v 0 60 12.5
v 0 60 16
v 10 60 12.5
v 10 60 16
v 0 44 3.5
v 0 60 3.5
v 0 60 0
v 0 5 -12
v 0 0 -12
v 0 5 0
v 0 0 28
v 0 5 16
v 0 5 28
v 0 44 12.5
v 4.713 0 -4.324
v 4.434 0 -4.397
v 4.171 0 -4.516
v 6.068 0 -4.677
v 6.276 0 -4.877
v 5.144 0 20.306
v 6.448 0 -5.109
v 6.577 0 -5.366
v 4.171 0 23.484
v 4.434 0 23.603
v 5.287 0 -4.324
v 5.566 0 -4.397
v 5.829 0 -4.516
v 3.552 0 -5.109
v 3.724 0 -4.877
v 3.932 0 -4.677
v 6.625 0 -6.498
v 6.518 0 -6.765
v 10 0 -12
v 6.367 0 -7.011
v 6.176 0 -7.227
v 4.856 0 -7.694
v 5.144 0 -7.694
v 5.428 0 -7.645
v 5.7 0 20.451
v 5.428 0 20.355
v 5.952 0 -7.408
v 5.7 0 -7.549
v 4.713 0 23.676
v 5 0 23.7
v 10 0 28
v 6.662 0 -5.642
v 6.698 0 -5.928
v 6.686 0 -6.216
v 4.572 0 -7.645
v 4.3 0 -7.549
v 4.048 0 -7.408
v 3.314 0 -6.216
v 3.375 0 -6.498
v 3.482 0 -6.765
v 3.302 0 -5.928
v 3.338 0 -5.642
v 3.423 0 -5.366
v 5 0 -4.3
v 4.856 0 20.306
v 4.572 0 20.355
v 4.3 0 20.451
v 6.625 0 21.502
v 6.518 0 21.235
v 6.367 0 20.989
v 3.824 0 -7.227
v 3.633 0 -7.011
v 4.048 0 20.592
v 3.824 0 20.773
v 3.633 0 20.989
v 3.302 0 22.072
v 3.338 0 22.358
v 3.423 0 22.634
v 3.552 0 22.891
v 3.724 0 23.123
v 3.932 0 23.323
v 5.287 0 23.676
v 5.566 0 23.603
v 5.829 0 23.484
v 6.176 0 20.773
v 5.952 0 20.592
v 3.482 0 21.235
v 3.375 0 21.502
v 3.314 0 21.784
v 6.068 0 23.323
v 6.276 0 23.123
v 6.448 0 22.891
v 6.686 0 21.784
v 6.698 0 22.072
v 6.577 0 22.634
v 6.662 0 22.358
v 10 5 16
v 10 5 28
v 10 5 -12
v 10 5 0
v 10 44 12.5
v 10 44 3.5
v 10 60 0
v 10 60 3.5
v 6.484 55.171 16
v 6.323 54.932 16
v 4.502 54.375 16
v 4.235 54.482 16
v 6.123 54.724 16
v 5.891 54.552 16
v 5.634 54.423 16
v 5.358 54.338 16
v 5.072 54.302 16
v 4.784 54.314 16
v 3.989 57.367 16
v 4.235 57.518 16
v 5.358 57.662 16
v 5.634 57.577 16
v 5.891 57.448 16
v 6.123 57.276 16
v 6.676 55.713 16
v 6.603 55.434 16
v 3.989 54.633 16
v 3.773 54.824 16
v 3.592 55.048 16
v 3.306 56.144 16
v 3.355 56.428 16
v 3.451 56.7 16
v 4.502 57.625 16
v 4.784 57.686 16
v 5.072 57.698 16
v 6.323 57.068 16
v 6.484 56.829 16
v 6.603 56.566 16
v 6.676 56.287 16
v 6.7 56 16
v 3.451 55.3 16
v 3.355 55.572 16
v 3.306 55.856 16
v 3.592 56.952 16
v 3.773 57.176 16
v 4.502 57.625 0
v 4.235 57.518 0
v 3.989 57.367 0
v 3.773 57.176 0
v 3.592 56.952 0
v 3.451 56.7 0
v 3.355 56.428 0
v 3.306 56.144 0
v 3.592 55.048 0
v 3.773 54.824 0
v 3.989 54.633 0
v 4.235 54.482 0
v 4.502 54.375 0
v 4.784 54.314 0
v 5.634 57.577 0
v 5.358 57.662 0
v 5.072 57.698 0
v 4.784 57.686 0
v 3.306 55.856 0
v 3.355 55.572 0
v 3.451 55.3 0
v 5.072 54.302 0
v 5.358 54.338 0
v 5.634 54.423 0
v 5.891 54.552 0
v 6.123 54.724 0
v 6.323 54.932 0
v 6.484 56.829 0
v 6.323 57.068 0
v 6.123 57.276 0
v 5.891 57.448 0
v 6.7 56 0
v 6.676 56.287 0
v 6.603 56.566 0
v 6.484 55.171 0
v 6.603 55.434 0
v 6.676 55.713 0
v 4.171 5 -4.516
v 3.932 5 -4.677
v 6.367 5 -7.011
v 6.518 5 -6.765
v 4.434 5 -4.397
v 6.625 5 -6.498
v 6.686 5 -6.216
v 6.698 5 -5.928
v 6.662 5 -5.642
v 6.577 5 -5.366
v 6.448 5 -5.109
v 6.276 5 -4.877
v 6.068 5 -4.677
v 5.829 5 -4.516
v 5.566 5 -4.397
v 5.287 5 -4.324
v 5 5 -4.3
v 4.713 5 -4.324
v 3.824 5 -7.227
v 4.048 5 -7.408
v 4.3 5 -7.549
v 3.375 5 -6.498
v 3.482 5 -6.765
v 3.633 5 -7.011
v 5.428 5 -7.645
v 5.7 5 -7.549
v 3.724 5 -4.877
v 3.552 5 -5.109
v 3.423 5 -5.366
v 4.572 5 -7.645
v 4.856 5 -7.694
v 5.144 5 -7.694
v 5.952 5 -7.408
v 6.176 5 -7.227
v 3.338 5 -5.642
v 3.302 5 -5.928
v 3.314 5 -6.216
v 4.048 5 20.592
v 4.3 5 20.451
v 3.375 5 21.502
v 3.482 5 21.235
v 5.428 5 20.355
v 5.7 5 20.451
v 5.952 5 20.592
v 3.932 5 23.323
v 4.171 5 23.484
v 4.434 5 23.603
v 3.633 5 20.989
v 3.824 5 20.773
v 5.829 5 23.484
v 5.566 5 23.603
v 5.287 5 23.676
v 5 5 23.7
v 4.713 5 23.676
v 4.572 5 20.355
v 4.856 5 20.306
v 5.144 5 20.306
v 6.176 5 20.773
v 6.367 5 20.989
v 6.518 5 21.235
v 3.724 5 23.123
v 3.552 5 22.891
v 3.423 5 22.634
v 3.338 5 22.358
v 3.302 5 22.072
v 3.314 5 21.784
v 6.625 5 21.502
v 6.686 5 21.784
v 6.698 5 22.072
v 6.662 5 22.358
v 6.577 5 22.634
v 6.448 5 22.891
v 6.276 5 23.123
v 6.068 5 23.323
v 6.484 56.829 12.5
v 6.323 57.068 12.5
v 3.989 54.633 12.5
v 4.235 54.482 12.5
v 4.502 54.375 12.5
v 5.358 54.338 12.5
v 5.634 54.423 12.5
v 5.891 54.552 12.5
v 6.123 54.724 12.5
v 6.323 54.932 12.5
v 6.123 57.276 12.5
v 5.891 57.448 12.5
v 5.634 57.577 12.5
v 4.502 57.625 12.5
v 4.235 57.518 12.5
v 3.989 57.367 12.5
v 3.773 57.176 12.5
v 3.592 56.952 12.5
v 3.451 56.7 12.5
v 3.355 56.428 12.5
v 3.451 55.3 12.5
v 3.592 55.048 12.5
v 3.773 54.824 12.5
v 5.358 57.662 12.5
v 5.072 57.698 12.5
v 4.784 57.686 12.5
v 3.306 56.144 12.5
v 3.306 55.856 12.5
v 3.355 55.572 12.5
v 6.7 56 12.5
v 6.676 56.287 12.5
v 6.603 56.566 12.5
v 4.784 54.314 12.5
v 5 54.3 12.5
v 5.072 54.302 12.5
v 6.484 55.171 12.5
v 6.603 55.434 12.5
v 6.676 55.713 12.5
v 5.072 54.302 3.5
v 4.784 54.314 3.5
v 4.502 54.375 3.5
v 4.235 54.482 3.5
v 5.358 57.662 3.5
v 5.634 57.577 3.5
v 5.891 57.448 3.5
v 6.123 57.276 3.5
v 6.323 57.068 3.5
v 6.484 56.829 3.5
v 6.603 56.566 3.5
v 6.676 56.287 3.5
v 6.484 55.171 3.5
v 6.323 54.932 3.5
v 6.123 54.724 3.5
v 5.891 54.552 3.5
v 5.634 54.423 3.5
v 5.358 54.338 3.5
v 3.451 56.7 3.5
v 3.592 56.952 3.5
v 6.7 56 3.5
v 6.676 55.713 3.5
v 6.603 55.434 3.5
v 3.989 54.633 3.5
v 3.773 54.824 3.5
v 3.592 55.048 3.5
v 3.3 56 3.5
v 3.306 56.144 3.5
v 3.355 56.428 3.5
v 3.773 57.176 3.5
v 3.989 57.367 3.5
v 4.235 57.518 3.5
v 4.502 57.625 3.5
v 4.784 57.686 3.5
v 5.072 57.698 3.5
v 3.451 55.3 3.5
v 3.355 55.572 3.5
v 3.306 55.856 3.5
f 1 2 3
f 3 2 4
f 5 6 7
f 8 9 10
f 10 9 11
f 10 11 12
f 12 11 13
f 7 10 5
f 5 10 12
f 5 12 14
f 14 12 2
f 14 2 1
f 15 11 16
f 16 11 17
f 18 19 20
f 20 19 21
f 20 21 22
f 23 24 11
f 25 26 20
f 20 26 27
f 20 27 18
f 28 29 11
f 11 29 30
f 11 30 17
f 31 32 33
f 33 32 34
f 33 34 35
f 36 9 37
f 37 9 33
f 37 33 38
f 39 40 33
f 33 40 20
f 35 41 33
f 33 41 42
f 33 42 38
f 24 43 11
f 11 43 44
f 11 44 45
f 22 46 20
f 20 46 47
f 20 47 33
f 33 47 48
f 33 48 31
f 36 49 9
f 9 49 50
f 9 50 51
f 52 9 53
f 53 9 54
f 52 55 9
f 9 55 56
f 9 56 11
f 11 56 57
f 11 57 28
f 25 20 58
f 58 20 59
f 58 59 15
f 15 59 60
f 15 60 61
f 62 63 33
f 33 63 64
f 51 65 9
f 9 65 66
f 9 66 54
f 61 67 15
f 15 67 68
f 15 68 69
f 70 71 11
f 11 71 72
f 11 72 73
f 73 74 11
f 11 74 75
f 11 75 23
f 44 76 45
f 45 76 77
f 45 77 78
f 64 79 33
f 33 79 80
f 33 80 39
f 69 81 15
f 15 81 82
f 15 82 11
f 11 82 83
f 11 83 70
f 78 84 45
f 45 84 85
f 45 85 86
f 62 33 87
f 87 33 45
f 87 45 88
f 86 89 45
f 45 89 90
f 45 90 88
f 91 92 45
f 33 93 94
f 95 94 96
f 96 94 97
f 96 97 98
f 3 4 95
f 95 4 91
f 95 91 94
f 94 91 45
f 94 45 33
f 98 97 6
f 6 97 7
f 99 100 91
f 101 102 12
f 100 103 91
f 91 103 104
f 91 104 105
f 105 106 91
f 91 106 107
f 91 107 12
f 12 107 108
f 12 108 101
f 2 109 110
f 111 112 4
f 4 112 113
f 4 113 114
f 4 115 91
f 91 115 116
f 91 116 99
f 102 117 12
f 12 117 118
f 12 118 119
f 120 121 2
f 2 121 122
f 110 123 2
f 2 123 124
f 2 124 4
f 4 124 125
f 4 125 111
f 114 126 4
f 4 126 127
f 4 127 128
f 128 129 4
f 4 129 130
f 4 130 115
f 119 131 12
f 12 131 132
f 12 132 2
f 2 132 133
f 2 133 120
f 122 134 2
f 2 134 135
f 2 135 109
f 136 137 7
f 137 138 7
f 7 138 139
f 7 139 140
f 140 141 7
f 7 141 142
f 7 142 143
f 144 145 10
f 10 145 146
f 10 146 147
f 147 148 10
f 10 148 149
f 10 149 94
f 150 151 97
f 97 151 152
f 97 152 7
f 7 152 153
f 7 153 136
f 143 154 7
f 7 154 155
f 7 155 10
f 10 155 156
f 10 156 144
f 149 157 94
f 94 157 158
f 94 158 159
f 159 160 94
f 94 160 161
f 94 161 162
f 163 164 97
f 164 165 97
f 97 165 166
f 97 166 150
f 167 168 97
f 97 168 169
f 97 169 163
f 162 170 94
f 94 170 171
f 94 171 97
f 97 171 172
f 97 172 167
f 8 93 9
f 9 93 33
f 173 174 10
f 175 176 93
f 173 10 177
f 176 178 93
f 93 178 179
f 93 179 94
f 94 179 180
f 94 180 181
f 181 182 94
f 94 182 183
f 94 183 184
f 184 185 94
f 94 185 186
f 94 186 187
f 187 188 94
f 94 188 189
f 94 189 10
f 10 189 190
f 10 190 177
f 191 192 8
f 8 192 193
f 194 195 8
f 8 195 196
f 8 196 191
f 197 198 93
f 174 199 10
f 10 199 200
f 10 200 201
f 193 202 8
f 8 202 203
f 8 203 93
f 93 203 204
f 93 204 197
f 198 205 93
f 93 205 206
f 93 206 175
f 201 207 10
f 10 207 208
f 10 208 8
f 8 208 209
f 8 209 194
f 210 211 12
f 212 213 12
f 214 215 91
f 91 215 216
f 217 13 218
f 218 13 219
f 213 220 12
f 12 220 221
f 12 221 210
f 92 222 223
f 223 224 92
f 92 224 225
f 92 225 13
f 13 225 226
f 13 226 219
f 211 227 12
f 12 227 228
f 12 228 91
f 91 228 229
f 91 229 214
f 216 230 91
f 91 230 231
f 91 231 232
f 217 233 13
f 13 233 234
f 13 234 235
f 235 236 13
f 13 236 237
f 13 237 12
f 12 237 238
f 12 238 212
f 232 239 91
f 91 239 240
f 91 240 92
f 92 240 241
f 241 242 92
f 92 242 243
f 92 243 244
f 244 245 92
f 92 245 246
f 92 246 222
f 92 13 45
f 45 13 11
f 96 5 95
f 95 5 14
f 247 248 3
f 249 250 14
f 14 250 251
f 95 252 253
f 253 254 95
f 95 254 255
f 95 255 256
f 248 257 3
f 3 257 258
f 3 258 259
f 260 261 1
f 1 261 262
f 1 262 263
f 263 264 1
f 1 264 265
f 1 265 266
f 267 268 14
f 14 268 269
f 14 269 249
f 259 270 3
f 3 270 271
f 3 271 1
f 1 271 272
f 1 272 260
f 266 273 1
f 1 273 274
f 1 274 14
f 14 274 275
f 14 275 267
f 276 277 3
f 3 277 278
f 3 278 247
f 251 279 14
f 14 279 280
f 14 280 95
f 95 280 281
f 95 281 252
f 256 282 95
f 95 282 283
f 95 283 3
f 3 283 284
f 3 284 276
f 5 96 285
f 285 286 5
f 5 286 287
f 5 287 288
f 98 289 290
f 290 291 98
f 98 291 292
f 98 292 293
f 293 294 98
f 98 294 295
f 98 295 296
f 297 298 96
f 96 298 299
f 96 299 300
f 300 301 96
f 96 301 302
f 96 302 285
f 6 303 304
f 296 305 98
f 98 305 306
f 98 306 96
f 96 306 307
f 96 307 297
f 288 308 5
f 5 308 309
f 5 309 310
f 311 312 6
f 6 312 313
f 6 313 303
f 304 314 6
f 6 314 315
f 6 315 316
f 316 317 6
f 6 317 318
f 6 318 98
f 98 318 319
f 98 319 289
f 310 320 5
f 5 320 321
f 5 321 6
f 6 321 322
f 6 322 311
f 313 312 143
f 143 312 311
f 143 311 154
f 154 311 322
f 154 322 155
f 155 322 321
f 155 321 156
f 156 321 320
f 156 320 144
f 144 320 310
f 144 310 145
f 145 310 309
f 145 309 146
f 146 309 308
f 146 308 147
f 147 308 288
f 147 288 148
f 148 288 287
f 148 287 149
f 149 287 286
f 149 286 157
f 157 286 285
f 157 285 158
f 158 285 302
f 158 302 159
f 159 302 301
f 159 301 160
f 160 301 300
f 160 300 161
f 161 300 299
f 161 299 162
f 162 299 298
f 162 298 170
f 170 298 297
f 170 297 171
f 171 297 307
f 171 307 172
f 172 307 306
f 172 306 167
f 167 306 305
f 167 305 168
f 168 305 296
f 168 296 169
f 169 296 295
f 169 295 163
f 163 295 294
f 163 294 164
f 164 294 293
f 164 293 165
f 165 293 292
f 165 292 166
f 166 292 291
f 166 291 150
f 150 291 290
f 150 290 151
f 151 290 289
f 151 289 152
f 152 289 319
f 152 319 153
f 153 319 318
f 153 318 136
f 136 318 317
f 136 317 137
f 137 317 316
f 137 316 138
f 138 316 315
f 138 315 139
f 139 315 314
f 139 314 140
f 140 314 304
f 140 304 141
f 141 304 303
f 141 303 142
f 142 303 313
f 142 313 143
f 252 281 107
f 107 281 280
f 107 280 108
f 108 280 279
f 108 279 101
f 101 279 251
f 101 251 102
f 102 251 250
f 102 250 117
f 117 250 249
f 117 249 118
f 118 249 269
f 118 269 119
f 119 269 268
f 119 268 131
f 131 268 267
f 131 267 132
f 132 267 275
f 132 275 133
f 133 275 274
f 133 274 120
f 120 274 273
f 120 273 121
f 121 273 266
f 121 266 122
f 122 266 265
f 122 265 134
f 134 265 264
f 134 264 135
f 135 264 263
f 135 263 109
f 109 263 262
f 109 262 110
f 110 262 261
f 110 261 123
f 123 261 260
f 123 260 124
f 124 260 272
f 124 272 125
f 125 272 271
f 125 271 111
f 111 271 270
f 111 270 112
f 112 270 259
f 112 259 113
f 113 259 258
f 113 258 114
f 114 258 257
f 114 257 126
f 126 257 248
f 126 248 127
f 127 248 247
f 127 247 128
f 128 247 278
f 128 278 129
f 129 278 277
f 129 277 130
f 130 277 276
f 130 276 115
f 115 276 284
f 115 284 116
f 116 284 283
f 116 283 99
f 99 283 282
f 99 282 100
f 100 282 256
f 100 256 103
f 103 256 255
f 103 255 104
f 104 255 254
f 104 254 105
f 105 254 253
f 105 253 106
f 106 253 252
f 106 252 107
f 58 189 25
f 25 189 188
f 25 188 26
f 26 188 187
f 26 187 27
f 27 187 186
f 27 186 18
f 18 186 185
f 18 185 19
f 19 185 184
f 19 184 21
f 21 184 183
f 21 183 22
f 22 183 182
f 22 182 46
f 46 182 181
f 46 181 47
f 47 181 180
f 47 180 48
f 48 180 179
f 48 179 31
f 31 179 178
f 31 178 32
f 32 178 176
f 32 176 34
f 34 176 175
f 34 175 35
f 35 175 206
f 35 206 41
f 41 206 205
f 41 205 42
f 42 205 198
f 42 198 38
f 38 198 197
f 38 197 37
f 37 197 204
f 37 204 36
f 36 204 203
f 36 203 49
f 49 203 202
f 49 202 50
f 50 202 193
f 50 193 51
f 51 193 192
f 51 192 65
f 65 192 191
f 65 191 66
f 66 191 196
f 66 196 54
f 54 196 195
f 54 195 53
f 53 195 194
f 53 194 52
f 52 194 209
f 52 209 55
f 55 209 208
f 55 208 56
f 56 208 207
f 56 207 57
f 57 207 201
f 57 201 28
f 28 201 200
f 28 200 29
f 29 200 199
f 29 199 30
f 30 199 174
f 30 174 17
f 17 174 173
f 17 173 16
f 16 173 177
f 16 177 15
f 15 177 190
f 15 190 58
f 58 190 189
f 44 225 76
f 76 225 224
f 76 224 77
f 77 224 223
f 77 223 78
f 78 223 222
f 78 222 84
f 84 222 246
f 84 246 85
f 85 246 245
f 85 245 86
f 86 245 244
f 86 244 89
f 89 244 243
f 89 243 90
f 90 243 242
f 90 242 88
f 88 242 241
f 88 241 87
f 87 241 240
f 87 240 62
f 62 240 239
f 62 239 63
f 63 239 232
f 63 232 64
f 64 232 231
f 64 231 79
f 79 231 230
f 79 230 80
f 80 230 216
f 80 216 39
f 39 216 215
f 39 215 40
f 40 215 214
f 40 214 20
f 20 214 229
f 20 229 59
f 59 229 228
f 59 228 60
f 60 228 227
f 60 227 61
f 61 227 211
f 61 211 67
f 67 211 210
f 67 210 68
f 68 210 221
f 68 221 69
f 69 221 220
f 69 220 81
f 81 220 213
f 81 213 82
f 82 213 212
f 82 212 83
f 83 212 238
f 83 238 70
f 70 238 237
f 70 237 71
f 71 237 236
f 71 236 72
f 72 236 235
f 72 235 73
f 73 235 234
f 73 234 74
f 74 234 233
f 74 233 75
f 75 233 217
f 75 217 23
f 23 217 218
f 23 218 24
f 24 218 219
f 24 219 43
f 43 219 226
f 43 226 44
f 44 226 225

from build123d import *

# Parameters (mm, degrees)
IZIM1_W                          = 10
IZIM1_H                          = 60
Y_KSEKLIK_EKSTR_ZYON1_DEPTH      = 16
Y_KSEKLIK_EKSTR_ZYON2_DEPTH      = 12
Y_KSEKLIK_EKSTR_ZYON2_DEPTH_BACK = 28
IZIM2_W                          = 10
IZIM2_H                          = 5
IZIM3_W                          = 9
IZIM3_H                          = 16
KES_EKSTR_ZYON2_DEPTH            = 12
IZIM4_R                          = 1.7
KES_EKSTR_ZYON3_DEPTH            = 25
IZIM5_R                          = 1.7
KES_EKSTR_ZYON4_DEPTH            = 25


with BuildPart() as part:
    # Çizim1 → Yükseklik-Ekstrüzyon1 (new body)
    with BuildSketch(Plane.XY):
        with Locations((5, 30)):
            Rectangle(IZIM1_W, IZIM1_H)
    extrude(amount=Y_KSEKLIK_EKSTR_ZYON1_DEPTH)

    # Çizim2 → Yükseklik-Ekstrüzyon2 (add, two sides: drawn at the far end of the back side and taken through both)
    with BuildSketch(Plane.XY.offset(16).offset(-Y_KSEKLIK_EKSTR_ZYON2_DEPTH_BACK)):
        with Locations((5, 2.5)):
            Rectangle(IZIM2_W, IZIM2_H)
    extrude(amount=Y_KSEKLIK_EKSTR_ZYON2_DEPTH + Y_KSEKLIK_EKSTR_ZYON2_DEPTH_BACK)

    # Çizim3 → Kes-Ekstrüzyon2 (cut)
    with BuildSketch(Plane(origin=(10, 0, 0), x_dir=(0, 0, -1), z_dir=(1, 0, 0))):
        with Locations((-8, 52)):
            Rectangle(IZIM3_W, IZIM3_H)
    extrude(amount=-KES_EKSTR_ZYON2_DEPTH, mode=Mode.SUBTRACT)

    # Çizim4 → Kes-Ekstrüzyon3 (cut)
    with BuildSketch(Plane.XY.offset(16)):
        with Locations((5, 56)):
            Circle(IZIM4_R)
    extrude(amount=-KES_EKSTR_ZYON3_DEPTH, mode=Mode.SUBTRACT)

    # Çizim5 → Kes-Ekstrüzyon4 (cut)
    with BuildSketch(Plane(origin=(0, 5, 0), x_dir=(1, 0, 0), z_dir=(0, 1, 0))):
        with Locations(Location((5, 6, 0), (0, 0, 270))):
            Circle(IZIM5_R)
        with Locations(Location((5, -22, 0), (0, 0, 270))):
            Circle(IZIM5_R)
    extrude(amount=-KES_EKSTR_ZYON4_DEPTH, mode=Mode.SUBTRACT)


solid = part.part
